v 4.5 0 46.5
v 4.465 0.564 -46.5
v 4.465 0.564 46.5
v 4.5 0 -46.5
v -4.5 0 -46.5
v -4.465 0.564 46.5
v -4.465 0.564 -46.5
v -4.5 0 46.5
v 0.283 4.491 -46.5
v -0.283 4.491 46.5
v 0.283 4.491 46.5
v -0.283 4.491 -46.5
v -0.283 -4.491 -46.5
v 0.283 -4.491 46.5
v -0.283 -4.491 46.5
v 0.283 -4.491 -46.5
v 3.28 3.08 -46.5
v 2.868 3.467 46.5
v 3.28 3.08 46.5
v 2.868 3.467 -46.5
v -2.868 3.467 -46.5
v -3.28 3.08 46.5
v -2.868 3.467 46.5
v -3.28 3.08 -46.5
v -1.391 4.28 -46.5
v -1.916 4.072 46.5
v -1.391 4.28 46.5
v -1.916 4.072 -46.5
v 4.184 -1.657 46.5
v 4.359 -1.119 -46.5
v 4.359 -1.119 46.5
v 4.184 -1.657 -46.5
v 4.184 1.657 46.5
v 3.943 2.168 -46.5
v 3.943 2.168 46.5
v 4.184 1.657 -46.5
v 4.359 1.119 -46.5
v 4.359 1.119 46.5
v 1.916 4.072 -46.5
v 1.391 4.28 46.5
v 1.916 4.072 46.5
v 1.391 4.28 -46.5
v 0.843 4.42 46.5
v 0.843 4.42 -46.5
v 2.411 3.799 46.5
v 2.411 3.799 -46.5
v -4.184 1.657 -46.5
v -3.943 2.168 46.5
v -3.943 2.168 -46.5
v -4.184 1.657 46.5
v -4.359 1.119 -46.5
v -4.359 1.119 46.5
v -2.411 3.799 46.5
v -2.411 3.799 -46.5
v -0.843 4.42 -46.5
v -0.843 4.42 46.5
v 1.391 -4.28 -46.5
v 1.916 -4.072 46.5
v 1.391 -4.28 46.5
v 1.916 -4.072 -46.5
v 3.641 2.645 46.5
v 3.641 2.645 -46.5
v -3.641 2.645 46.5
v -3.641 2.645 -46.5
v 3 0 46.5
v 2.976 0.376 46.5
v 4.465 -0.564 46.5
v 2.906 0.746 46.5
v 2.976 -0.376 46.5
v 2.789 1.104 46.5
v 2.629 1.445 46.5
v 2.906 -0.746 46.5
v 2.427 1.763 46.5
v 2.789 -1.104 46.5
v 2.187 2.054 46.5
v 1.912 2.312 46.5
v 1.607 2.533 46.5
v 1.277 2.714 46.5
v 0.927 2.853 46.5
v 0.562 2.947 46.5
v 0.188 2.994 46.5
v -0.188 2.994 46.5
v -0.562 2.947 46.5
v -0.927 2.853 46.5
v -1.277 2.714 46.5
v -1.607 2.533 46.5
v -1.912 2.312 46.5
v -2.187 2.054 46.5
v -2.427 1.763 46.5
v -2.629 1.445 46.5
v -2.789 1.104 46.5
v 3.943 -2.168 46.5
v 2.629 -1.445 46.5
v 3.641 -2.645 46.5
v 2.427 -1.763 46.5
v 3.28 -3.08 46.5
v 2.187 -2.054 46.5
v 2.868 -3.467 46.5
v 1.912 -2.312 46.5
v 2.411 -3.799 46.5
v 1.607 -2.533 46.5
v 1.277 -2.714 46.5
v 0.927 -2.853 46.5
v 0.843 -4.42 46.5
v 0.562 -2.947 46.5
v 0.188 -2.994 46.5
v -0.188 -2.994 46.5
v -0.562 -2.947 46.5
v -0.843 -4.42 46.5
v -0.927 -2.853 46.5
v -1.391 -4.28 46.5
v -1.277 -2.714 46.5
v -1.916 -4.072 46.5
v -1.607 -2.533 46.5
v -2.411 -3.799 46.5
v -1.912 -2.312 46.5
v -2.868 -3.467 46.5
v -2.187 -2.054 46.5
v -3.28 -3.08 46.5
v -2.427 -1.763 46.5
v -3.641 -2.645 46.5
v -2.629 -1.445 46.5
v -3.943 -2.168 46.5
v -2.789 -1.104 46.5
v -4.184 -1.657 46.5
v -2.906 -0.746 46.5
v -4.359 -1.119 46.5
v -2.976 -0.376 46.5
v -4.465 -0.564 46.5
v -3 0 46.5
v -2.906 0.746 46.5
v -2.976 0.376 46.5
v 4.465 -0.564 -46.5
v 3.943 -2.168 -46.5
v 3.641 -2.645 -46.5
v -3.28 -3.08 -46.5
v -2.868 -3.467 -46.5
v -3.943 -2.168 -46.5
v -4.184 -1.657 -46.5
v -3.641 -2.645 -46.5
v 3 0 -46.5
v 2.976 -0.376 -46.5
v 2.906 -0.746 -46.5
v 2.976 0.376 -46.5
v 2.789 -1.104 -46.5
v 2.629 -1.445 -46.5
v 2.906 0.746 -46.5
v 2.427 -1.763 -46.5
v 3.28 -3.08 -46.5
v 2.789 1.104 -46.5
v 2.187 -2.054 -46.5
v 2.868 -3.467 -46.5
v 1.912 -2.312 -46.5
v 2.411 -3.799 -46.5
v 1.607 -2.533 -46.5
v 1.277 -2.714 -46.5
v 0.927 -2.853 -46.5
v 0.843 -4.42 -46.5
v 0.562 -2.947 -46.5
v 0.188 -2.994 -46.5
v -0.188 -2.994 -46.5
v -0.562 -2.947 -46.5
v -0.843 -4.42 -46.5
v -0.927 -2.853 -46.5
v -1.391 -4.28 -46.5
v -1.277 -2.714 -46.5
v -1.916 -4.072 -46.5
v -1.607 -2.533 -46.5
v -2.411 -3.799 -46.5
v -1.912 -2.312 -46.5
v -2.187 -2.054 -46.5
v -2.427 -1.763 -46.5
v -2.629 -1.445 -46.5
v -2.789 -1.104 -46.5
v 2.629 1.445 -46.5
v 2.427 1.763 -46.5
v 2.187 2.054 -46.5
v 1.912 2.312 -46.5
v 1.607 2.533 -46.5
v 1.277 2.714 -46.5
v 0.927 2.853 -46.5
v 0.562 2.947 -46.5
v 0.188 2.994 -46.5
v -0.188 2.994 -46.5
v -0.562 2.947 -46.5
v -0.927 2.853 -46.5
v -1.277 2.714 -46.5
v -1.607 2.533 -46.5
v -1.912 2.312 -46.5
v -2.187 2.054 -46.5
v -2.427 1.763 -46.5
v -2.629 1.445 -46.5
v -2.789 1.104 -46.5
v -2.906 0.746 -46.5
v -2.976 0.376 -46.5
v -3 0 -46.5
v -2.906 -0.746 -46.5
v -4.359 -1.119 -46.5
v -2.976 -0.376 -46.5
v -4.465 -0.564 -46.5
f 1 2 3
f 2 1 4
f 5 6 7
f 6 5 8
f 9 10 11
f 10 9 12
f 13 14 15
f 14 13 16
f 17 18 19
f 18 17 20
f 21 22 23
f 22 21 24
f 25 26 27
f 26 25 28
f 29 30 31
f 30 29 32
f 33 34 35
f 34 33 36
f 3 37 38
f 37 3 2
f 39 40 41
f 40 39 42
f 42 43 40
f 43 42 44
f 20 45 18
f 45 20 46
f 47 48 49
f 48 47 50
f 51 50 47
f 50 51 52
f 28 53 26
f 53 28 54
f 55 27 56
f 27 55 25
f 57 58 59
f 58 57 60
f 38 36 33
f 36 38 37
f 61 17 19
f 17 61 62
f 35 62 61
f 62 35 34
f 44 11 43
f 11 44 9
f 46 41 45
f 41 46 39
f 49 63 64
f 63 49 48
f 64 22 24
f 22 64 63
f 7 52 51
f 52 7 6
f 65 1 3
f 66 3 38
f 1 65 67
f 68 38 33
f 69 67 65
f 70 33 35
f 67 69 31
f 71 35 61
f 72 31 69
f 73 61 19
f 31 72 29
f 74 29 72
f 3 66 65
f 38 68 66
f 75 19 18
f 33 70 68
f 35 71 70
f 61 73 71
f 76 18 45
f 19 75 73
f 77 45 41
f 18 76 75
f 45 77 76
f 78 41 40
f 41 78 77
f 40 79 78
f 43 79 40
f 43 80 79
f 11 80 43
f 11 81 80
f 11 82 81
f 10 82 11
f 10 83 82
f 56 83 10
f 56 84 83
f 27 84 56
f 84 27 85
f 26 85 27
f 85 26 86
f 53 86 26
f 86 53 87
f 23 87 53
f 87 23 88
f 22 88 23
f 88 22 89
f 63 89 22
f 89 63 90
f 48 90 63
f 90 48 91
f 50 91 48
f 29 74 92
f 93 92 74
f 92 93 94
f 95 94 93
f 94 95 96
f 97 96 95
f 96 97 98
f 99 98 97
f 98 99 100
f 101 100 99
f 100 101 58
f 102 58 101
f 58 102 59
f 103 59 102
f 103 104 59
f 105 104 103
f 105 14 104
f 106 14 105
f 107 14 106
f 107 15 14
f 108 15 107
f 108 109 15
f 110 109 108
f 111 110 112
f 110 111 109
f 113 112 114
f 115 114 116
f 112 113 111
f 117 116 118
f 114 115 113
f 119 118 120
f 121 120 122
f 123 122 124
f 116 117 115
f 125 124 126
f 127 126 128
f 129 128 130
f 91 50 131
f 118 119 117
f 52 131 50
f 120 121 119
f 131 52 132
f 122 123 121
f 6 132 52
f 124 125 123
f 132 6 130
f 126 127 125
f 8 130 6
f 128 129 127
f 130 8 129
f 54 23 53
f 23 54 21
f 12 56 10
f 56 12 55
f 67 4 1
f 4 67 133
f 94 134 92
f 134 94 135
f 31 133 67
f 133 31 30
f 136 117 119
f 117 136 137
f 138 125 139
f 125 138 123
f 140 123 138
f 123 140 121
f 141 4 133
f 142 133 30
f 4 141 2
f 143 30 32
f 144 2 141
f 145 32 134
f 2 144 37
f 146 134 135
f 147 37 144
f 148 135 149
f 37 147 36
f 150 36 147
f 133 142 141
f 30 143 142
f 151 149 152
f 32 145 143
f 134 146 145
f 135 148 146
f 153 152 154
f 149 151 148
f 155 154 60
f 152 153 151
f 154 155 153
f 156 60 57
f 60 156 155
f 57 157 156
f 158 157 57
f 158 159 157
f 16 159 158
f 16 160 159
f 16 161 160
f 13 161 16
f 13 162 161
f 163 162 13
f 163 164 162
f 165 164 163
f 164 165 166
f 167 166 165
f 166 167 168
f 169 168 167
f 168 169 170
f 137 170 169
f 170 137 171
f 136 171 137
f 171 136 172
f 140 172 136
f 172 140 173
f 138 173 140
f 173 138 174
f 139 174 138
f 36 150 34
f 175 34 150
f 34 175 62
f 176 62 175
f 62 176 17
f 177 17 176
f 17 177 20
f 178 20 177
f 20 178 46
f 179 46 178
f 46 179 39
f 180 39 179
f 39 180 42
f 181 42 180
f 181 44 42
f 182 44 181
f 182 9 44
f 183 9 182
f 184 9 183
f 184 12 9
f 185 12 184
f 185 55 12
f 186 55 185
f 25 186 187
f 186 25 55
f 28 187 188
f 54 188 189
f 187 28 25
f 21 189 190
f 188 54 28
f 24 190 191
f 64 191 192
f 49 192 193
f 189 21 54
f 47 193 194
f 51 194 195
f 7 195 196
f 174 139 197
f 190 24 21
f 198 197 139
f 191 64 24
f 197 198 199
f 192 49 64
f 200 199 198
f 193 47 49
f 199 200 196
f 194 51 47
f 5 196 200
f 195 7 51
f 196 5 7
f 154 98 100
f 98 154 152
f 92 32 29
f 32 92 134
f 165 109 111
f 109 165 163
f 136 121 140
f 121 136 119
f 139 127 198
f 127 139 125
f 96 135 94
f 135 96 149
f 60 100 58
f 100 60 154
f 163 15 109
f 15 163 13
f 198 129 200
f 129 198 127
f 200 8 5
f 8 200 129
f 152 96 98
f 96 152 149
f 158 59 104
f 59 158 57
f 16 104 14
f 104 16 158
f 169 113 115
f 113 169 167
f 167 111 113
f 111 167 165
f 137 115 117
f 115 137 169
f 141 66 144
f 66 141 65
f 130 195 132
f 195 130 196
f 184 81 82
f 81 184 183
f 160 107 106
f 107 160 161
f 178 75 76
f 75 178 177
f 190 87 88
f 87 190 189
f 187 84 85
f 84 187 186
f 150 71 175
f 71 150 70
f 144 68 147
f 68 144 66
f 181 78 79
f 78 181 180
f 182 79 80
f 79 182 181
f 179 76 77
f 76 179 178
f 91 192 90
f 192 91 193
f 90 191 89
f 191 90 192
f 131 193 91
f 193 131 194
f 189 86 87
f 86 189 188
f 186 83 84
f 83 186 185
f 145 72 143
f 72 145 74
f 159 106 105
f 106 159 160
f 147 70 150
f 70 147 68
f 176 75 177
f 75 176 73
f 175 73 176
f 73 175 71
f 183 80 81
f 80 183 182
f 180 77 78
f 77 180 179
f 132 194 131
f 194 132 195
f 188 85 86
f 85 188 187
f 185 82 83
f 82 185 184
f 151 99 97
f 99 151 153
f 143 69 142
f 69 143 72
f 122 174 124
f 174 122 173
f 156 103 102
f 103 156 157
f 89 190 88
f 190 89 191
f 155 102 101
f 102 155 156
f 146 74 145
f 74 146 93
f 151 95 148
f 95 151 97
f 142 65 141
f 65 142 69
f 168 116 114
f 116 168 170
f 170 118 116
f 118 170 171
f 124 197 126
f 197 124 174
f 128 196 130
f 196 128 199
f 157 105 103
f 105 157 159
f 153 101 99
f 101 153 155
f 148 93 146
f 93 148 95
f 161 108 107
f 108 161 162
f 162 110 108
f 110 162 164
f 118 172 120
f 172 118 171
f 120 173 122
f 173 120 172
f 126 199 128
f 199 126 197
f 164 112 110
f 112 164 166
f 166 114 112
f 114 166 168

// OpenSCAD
$fn = 50;


difference() {
	union() {
		translate(v = [0, 0, -46.5000000000]) {
			cylinder(h = 93, r = 4.5000000000);
		}
	}
	union() {
		translate(v = [0, 0, -100.0000000000]) {
			cylinder(h = 200, r = 3.0000000000);
		}
	}
}
